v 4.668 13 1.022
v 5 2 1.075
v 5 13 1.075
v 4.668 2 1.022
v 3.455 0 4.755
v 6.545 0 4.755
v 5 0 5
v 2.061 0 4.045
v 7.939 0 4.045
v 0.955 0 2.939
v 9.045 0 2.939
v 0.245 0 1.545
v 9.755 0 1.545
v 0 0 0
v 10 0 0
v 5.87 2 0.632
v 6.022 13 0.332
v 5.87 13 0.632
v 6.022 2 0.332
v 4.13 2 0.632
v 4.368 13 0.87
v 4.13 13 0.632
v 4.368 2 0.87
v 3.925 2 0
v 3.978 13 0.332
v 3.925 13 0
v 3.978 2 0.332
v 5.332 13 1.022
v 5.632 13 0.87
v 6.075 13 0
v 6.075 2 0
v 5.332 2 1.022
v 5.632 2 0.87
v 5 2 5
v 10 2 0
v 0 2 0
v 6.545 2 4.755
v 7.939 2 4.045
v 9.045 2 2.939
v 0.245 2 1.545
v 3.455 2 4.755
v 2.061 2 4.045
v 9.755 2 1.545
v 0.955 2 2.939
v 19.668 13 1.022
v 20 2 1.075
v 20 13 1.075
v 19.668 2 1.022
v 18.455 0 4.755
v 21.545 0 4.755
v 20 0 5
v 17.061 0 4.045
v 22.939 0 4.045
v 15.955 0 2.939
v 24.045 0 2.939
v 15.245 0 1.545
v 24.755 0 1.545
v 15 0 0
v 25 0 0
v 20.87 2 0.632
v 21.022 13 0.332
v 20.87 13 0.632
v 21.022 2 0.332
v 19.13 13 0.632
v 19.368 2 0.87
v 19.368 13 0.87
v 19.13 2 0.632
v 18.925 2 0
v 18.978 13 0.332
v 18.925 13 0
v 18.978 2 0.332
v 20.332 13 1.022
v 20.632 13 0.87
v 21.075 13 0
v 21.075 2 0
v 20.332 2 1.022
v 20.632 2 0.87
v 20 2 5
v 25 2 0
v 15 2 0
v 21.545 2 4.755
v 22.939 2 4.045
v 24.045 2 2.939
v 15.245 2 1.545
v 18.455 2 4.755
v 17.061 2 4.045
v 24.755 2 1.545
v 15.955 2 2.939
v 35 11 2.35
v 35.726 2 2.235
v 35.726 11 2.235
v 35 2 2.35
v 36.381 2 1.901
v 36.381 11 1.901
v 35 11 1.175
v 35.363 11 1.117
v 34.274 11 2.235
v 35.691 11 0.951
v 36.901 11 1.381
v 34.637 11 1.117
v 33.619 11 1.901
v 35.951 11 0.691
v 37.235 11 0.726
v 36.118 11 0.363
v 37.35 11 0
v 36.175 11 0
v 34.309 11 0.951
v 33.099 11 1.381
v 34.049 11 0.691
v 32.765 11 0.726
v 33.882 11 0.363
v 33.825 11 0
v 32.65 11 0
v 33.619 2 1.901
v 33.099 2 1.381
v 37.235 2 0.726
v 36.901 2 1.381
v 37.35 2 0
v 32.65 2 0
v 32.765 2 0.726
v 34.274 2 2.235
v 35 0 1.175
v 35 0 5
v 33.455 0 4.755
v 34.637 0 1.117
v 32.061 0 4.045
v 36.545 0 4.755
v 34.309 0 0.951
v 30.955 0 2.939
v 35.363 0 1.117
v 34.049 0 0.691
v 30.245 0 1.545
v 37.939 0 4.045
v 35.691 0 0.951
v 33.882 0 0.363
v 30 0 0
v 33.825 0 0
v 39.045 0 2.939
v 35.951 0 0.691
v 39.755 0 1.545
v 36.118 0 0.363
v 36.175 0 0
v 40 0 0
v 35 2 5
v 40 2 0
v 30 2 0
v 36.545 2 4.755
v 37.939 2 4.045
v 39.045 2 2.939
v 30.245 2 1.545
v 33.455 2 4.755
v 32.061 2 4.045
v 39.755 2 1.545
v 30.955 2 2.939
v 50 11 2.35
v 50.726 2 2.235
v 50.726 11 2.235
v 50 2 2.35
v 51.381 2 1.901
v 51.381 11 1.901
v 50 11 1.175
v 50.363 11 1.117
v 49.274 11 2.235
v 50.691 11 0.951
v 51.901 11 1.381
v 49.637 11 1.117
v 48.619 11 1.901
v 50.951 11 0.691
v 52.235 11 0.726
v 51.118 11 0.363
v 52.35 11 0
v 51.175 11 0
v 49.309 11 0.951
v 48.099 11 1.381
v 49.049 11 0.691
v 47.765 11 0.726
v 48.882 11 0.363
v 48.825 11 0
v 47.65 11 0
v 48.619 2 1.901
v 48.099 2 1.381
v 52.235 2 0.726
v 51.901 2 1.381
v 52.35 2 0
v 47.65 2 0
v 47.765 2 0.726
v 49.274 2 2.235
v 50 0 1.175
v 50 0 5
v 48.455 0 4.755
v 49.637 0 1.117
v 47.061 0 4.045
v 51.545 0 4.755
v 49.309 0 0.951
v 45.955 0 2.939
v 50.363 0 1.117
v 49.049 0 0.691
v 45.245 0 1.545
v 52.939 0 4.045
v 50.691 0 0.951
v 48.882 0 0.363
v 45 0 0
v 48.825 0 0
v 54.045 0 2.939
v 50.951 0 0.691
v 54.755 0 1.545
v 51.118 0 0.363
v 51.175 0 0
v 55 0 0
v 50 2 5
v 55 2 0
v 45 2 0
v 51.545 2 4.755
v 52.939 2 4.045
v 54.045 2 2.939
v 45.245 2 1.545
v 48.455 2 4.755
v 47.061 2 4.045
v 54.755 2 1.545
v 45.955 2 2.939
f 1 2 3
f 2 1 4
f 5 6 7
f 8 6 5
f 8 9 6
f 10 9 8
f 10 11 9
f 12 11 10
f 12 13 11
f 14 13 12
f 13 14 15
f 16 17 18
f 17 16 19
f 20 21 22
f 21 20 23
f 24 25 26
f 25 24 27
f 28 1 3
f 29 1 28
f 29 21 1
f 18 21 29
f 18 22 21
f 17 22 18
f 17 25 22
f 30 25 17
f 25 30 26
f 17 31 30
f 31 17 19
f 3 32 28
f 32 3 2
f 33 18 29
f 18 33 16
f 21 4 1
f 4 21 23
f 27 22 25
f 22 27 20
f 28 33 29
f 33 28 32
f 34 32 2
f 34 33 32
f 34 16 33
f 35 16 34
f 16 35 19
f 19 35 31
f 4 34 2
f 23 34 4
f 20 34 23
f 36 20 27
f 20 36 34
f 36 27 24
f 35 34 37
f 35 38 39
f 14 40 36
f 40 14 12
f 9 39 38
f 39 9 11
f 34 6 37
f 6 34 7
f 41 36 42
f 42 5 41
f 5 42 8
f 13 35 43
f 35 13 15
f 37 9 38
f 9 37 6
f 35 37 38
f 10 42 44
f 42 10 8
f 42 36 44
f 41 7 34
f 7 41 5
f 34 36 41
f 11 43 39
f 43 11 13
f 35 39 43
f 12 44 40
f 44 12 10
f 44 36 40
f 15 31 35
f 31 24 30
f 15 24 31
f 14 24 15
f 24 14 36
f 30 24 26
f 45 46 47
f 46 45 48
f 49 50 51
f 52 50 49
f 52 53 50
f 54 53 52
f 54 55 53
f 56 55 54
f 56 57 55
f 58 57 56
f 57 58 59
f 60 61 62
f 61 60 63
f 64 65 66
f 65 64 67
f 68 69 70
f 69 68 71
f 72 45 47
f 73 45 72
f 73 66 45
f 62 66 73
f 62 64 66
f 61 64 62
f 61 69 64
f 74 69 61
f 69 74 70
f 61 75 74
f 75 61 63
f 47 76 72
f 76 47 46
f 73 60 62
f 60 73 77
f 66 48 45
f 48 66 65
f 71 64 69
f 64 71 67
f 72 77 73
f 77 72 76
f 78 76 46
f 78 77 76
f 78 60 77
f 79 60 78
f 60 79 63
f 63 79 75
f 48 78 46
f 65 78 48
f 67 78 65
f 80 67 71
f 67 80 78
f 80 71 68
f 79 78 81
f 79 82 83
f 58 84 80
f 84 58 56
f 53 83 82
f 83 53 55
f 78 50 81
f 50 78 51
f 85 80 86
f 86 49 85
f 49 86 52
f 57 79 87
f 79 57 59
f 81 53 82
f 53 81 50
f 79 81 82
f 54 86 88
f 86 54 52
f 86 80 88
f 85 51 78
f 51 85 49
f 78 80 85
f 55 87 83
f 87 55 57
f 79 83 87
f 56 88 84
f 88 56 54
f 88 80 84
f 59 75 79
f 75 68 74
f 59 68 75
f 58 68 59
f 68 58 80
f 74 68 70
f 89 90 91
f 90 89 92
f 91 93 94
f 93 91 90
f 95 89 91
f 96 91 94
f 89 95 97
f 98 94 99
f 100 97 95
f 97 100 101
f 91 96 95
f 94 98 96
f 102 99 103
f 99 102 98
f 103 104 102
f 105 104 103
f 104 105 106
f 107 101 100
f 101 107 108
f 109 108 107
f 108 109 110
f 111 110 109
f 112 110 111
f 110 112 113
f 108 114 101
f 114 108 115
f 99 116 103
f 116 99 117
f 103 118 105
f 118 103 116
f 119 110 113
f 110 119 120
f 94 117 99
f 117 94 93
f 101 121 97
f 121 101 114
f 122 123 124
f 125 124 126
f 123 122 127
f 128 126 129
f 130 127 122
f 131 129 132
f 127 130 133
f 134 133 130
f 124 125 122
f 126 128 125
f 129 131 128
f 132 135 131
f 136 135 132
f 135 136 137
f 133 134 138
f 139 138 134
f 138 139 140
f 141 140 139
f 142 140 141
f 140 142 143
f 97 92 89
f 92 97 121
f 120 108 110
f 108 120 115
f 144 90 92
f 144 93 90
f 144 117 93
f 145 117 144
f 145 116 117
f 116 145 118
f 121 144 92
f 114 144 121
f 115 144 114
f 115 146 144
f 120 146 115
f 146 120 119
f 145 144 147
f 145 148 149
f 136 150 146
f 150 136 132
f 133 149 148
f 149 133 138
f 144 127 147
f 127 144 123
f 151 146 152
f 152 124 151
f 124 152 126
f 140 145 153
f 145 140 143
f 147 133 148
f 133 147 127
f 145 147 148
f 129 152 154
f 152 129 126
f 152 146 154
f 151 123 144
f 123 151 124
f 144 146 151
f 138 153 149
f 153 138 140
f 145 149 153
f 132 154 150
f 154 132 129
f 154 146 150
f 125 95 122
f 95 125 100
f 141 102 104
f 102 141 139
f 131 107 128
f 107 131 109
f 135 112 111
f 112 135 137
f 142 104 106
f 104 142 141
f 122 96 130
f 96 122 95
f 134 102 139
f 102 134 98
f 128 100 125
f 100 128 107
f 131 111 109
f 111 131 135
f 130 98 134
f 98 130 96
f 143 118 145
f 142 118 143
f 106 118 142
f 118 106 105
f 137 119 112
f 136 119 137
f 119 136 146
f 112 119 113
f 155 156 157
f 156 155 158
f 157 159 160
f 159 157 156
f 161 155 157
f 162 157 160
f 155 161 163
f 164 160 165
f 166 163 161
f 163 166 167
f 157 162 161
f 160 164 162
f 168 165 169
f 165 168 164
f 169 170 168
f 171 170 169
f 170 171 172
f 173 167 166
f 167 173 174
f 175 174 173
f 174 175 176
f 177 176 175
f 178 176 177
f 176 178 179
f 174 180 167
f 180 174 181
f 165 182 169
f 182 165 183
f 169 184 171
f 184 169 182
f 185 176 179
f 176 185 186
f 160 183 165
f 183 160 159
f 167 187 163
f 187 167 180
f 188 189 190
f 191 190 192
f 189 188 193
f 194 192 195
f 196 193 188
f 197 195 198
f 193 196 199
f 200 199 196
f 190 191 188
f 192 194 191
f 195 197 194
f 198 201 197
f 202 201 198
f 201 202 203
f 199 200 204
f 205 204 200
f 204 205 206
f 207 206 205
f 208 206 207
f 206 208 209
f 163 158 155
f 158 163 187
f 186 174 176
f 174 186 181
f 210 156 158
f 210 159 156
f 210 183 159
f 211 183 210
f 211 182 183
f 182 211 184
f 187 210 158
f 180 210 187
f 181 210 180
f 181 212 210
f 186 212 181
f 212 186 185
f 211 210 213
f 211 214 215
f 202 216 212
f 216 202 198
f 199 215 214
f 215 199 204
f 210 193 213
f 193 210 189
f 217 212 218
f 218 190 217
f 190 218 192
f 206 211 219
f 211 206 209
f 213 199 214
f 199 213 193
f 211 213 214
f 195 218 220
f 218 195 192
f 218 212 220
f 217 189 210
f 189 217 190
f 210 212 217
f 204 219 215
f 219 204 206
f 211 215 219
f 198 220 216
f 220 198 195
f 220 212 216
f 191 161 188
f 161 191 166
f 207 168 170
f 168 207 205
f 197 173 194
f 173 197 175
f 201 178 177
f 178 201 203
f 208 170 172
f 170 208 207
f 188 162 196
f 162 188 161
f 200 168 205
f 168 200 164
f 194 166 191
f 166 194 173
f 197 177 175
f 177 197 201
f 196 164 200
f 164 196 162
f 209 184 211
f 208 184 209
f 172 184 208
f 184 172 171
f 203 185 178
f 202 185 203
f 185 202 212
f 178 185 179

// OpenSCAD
$fn=20;
HeadHeight=2; // [1,1.5,2,2.5,3]
HeadDiameter=10; //[7:15]
SleeveLength=9; //[1:100]
SleeveOutterDiameter=4.7;//[5.00,5.08,6,7,8,9,10]
Play=0.1;// [0.0,0.1,0.2,0.3,0.4,0.5]

HeadRadius=HeadDiameter/2;
SleeveOutterRadius=SleeveOutterDiameter/2;
SleeveInnerRadius=(SleeveOutterRadius/2)-Play;

O1=HeadDiameter/2;
O2=HeadDiameter+10;
O3=(HeadDiameter*2)+15;
O4=(HeadDiameter*3)+20;

translate([O1,0,0]) core();
translate([O2,0,0]) core();
translate([O3,0,0]) outter();
translate([O4,0,0]) outter();

module core() {
	difference() {
		union() {
			rotate([-90,0,0]) cylinder(r=SleeveInnerRadius,h=SleeveLength+(HeadHeight*2));
			rotate([-90,0,0]) cylinder(r=HeadRadius,h=HeadHeight);
		}
		translate([-HeadRadius,0,-HeadRadius]) cube([HeadDiameter+1,SleeveLength+(HeadHeight*2)+1,HeadRadius]);
	}
}

module outter() {
	difference() {
		union() {
			rotate([-90,0,0]) cylinder(r=SleeveOutterRadius,h=SleeveLength+HeadHeight);
			rotate([-90,0,0]) cylinder(r=HeadRadius,h=HeadHeight);
		}
		rotate([-90,0,0]) cylinder(r=SleeveInnerRadius+Play,h=SleeveLength+HeadHeight);
		translate([-HeadRadius,0,-HeadRadius]) cube([HeadDiameter+1,SleeveLength+HeadHeight+1,HeadRadius]);
	}
}
